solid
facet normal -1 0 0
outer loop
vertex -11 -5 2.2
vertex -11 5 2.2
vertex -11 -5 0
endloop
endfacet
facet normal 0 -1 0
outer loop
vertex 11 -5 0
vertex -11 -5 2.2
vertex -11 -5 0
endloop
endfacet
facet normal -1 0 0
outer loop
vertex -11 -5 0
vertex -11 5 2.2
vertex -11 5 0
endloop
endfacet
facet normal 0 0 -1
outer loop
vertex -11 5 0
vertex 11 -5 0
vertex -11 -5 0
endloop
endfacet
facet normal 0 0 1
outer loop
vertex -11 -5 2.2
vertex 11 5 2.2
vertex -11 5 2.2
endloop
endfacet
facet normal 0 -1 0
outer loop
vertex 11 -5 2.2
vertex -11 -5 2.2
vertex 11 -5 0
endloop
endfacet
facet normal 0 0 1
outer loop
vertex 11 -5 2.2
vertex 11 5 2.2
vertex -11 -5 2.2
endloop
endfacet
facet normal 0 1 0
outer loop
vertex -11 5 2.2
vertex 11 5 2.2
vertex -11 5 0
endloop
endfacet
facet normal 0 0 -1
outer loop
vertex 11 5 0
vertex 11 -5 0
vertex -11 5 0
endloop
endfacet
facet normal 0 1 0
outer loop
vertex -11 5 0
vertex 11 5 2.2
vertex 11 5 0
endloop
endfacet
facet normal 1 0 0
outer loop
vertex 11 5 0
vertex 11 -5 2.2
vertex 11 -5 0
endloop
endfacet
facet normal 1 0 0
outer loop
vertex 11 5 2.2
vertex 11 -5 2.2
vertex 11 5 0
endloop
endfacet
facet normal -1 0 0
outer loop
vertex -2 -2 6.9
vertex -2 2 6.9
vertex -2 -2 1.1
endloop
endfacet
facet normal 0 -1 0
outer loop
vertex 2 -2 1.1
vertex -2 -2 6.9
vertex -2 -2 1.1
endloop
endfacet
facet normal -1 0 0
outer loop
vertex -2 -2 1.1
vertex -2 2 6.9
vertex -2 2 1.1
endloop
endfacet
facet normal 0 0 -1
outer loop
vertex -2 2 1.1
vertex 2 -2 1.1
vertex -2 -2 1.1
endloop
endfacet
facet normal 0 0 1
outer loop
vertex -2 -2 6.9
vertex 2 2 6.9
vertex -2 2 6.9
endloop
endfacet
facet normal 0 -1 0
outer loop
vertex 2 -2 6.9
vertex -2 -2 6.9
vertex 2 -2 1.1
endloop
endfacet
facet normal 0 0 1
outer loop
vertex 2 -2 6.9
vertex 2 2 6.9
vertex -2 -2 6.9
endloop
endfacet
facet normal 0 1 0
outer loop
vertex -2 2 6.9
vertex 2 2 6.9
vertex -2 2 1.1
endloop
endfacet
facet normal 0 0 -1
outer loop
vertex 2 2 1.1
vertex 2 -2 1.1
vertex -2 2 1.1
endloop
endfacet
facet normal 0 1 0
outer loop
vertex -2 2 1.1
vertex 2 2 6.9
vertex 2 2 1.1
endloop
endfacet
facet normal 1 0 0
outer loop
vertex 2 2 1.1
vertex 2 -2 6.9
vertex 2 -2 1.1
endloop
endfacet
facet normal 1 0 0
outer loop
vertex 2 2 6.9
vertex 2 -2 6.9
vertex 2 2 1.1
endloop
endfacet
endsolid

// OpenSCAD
/*
Yamper V11 mesh source for yamper_v11_pisugar_power_button_plunger_test.stl
Units: millimeters

This source keeps the restored V11 STL geometry as a plain OpenSCAD polyhedron.
It is not a new redesign. It exists so the CAD source, STL, and STEP exports stay together.
*/

module yamper_v11_pisugar_power_button_plunger_test() {
    pts = [
        [-11, -5, 2.2],
        [-11, 5, 2.2],
        [-11, -5, 0],
        [11, -5, 0],
        [-11, 5, 0],
        [11, 5, 2.2],
        [11, -5, 2.2],
        [11, 5, 0],
        [-2, -2, 6.9],
        [-2, 2, 6.9],
        [-2, -2, 1.1],
        [2, -2, 1.1],
        [-2, 2, 1.1],
        [2, 2, 6.9],
        [2, -2, 6.9],
        [2, 2, 1.1],
    ];

    tris = [
        [0, 1, 2],
        [3, 0, 2],
        [2, 1, 4],
        [4, 3, 2],
        [0, 5, 1],
        [6, 0, 3],
        [6, 5, 0],
        [1, 5, 4],
        [7, 3, 4],
        [4, 5, 7],
        [7, 6, 3],
        [5, 6, 7],
        [8, 9, 10],
        [11, 8, 10],
        [10, 9, 12],
        [12, 11, 10],
        [8, 13, 9],
        [14, 8, 11],
        [14, 13, 8],
        [9, 13, 12],
        [15, 11, 12],
        [12, 13, 15],
        [15, 14, 11],
        [13, 14, 15],
    ];

    polyhedron(points = pts, faces = tris, convexity = 10);
}

yamper_v11_pisugar_power_button_plunger_test();
